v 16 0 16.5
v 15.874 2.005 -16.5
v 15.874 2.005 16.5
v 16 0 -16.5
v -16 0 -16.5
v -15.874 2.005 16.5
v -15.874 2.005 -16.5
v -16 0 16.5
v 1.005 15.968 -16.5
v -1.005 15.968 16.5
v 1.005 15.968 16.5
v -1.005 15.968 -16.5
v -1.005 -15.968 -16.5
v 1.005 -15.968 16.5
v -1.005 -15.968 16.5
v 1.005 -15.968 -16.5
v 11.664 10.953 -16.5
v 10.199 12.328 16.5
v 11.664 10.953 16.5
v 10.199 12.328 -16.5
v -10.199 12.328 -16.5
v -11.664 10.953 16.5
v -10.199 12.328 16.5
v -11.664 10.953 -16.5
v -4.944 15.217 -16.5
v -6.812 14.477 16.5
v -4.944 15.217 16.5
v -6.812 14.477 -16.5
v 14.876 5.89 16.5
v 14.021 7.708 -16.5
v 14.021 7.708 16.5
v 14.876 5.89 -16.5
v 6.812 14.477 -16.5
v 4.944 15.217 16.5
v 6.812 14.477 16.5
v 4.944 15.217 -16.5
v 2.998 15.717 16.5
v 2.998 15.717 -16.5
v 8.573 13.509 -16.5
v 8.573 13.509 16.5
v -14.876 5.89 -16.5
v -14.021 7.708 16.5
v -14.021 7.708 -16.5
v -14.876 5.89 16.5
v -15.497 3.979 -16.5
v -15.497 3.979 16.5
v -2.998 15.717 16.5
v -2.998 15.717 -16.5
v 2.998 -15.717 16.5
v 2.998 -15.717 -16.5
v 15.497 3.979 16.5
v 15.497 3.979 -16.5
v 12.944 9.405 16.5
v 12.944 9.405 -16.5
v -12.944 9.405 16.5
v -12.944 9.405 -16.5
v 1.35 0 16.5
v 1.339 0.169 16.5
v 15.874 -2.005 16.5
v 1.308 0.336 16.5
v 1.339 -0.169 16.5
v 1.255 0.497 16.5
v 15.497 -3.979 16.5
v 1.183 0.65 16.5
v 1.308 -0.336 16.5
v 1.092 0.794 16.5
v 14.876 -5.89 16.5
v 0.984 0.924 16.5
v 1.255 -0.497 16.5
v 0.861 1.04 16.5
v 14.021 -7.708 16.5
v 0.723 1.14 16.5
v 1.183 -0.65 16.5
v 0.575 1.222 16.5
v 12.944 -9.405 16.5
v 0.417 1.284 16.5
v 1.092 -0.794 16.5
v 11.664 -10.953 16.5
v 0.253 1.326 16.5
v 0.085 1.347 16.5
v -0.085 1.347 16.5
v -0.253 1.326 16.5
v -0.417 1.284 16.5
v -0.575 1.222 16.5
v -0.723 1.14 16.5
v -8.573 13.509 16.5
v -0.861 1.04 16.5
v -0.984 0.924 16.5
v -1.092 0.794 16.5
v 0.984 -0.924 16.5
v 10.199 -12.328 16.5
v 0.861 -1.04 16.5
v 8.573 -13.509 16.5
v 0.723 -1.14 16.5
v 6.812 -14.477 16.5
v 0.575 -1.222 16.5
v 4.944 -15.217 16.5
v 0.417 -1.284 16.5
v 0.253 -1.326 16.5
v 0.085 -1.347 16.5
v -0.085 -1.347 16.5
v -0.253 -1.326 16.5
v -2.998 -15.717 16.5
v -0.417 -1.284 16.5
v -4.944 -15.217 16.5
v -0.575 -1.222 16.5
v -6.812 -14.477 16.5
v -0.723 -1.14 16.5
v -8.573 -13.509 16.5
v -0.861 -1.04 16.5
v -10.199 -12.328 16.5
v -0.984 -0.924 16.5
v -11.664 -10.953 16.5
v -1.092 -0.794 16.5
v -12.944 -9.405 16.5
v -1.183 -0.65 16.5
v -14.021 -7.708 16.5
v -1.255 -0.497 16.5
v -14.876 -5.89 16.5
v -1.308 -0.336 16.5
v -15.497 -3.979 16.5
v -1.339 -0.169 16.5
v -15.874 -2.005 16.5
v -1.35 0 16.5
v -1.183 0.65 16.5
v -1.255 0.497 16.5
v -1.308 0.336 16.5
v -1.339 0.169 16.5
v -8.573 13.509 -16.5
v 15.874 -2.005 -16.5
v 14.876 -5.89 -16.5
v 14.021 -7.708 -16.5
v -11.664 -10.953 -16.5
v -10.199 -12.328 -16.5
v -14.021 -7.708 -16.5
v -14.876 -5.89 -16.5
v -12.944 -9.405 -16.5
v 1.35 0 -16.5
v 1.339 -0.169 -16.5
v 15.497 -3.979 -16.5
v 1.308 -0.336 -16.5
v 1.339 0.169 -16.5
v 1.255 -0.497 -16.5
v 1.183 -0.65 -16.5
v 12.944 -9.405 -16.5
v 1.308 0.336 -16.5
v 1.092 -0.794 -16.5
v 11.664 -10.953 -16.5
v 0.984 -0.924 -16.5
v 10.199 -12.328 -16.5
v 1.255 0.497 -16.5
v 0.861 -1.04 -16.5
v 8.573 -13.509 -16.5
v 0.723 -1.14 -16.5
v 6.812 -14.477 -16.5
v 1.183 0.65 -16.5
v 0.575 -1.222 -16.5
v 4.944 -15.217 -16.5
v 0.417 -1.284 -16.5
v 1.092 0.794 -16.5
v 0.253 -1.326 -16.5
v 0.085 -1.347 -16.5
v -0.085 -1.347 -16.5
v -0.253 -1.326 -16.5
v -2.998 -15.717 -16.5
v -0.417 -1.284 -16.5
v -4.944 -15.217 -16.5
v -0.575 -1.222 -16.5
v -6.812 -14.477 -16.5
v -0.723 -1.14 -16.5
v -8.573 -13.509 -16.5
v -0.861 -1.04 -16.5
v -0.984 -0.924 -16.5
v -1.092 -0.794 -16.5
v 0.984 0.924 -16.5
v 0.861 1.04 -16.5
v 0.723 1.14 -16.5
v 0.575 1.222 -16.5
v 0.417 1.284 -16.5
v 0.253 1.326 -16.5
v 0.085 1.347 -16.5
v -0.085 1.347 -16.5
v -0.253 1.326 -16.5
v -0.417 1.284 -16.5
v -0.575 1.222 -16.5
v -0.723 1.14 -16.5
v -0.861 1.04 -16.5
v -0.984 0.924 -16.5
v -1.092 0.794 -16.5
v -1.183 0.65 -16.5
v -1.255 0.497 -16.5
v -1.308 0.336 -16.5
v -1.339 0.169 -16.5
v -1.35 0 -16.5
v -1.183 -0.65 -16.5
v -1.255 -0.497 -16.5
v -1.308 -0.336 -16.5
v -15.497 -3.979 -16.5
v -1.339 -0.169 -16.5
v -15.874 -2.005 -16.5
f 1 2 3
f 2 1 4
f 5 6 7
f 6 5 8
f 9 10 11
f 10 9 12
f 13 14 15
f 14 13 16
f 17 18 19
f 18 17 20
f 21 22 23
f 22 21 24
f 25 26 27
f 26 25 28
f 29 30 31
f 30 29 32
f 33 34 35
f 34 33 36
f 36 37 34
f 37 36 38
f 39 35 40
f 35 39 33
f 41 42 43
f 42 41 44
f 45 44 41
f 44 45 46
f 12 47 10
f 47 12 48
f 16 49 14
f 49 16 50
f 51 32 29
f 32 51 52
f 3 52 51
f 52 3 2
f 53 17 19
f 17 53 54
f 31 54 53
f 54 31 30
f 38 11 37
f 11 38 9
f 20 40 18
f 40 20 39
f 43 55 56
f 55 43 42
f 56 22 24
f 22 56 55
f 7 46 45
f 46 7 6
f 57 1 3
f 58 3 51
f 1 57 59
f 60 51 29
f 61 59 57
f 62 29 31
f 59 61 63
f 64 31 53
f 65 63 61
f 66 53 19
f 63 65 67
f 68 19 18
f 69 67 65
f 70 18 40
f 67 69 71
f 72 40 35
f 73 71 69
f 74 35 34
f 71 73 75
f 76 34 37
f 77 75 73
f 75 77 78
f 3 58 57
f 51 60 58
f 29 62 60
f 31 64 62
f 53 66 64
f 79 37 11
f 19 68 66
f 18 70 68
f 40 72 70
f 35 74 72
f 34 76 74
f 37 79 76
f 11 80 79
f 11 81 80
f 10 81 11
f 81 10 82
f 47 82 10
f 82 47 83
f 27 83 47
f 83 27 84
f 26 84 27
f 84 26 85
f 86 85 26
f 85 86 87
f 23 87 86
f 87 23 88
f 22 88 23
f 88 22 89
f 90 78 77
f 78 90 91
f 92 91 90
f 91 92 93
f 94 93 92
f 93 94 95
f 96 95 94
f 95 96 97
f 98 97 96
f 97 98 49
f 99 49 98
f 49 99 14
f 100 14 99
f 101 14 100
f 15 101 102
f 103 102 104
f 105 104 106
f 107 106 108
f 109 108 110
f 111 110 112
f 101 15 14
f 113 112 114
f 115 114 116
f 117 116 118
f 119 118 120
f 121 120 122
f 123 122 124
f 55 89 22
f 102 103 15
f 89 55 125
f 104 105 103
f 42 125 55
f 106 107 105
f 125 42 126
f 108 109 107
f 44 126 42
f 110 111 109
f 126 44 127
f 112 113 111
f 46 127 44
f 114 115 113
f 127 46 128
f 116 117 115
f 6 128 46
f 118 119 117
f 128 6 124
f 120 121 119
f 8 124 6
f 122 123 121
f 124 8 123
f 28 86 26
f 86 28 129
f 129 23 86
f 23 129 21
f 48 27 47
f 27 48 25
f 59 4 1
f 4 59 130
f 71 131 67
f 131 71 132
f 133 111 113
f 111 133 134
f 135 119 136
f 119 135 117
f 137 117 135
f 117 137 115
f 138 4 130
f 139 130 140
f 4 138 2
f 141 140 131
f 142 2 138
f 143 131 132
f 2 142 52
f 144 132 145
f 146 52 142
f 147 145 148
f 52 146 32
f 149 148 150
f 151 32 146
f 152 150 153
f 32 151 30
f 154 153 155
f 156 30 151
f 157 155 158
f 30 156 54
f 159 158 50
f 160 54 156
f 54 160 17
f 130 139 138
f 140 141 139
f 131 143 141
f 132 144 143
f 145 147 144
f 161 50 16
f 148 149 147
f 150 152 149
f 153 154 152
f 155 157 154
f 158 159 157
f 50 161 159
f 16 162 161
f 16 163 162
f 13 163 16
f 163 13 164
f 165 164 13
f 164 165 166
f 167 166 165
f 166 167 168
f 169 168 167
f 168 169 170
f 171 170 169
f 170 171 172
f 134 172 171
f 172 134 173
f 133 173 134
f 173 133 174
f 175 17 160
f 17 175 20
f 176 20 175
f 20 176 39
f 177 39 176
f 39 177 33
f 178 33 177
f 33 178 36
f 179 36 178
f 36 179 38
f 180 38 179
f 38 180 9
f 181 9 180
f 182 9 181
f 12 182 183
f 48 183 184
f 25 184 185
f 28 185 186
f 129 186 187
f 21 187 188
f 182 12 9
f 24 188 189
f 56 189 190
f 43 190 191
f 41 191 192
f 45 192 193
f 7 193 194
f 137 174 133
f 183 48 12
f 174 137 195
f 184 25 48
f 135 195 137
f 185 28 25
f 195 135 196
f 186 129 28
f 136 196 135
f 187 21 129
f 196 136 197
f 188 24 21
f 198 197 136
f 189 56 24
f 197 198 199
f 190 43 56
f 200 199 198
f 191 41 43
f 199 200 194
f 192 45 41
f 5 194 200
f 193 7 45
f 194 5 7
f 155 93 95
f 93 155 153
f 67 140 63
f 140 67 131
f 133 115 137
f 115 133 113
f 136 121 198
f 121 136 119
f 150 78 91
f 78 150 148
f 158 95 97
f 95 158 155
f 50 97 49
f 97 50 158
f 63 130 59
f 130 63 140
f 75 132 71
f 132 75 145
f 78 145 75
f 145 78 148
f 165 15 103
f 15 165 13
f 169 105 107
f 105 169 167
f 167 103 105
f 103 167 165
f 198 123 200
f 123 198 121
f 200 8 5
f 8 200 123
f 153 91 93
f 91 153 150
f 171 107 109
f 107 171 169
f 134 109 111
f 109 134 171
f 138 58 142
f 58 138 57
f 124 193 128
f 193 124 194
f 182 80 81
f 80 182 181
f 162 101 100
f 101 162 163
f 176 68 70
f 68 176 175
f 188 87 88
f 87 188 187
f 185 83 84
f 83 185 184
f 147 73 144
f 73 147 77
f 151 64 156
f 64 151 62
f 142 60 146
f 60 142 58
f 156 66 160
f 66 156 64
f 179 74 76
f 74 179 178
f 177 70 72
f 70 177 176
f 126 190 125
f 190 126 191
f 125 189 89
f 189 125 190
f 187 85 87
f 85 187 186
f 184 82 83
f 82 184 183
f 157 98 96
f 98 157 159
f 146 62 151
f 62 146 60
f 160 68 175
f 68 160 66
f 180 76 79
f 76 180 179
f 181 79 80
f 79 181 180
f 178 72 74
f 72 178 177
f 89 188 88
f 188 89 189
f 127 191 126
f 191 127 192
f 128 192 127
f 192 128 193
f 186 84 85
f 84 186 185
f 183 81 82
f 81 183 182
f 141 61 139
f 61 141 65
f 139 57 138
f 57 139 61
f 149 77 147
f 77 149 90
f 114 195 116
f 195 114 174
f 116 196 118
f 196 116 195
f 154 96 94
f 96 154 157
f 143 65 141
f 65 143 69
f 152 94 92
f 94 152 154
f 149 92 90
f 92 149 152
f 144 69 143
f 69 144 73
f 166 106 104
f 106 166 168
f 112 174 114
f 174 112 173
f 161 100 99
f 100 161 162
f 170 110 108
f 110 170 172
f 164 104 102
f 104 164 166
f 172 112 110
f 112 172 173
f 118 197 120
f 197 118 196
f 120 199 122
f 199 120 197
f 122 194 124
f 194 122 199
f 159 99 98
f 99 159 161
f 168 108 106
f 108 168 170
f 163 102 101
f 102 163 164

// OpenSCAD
$fn = 50;


difference() {
	union() {
		translate(v = [0, 0, -16.5000000000]) {
			cylinder(h = 33, r = 16.0000000000);
		}
	}
	union() {
		translate(v = [0, 0, -100.0000000000]) {
			cylinder(h = 200, r = 1.3500000000);
		}
	}
}
